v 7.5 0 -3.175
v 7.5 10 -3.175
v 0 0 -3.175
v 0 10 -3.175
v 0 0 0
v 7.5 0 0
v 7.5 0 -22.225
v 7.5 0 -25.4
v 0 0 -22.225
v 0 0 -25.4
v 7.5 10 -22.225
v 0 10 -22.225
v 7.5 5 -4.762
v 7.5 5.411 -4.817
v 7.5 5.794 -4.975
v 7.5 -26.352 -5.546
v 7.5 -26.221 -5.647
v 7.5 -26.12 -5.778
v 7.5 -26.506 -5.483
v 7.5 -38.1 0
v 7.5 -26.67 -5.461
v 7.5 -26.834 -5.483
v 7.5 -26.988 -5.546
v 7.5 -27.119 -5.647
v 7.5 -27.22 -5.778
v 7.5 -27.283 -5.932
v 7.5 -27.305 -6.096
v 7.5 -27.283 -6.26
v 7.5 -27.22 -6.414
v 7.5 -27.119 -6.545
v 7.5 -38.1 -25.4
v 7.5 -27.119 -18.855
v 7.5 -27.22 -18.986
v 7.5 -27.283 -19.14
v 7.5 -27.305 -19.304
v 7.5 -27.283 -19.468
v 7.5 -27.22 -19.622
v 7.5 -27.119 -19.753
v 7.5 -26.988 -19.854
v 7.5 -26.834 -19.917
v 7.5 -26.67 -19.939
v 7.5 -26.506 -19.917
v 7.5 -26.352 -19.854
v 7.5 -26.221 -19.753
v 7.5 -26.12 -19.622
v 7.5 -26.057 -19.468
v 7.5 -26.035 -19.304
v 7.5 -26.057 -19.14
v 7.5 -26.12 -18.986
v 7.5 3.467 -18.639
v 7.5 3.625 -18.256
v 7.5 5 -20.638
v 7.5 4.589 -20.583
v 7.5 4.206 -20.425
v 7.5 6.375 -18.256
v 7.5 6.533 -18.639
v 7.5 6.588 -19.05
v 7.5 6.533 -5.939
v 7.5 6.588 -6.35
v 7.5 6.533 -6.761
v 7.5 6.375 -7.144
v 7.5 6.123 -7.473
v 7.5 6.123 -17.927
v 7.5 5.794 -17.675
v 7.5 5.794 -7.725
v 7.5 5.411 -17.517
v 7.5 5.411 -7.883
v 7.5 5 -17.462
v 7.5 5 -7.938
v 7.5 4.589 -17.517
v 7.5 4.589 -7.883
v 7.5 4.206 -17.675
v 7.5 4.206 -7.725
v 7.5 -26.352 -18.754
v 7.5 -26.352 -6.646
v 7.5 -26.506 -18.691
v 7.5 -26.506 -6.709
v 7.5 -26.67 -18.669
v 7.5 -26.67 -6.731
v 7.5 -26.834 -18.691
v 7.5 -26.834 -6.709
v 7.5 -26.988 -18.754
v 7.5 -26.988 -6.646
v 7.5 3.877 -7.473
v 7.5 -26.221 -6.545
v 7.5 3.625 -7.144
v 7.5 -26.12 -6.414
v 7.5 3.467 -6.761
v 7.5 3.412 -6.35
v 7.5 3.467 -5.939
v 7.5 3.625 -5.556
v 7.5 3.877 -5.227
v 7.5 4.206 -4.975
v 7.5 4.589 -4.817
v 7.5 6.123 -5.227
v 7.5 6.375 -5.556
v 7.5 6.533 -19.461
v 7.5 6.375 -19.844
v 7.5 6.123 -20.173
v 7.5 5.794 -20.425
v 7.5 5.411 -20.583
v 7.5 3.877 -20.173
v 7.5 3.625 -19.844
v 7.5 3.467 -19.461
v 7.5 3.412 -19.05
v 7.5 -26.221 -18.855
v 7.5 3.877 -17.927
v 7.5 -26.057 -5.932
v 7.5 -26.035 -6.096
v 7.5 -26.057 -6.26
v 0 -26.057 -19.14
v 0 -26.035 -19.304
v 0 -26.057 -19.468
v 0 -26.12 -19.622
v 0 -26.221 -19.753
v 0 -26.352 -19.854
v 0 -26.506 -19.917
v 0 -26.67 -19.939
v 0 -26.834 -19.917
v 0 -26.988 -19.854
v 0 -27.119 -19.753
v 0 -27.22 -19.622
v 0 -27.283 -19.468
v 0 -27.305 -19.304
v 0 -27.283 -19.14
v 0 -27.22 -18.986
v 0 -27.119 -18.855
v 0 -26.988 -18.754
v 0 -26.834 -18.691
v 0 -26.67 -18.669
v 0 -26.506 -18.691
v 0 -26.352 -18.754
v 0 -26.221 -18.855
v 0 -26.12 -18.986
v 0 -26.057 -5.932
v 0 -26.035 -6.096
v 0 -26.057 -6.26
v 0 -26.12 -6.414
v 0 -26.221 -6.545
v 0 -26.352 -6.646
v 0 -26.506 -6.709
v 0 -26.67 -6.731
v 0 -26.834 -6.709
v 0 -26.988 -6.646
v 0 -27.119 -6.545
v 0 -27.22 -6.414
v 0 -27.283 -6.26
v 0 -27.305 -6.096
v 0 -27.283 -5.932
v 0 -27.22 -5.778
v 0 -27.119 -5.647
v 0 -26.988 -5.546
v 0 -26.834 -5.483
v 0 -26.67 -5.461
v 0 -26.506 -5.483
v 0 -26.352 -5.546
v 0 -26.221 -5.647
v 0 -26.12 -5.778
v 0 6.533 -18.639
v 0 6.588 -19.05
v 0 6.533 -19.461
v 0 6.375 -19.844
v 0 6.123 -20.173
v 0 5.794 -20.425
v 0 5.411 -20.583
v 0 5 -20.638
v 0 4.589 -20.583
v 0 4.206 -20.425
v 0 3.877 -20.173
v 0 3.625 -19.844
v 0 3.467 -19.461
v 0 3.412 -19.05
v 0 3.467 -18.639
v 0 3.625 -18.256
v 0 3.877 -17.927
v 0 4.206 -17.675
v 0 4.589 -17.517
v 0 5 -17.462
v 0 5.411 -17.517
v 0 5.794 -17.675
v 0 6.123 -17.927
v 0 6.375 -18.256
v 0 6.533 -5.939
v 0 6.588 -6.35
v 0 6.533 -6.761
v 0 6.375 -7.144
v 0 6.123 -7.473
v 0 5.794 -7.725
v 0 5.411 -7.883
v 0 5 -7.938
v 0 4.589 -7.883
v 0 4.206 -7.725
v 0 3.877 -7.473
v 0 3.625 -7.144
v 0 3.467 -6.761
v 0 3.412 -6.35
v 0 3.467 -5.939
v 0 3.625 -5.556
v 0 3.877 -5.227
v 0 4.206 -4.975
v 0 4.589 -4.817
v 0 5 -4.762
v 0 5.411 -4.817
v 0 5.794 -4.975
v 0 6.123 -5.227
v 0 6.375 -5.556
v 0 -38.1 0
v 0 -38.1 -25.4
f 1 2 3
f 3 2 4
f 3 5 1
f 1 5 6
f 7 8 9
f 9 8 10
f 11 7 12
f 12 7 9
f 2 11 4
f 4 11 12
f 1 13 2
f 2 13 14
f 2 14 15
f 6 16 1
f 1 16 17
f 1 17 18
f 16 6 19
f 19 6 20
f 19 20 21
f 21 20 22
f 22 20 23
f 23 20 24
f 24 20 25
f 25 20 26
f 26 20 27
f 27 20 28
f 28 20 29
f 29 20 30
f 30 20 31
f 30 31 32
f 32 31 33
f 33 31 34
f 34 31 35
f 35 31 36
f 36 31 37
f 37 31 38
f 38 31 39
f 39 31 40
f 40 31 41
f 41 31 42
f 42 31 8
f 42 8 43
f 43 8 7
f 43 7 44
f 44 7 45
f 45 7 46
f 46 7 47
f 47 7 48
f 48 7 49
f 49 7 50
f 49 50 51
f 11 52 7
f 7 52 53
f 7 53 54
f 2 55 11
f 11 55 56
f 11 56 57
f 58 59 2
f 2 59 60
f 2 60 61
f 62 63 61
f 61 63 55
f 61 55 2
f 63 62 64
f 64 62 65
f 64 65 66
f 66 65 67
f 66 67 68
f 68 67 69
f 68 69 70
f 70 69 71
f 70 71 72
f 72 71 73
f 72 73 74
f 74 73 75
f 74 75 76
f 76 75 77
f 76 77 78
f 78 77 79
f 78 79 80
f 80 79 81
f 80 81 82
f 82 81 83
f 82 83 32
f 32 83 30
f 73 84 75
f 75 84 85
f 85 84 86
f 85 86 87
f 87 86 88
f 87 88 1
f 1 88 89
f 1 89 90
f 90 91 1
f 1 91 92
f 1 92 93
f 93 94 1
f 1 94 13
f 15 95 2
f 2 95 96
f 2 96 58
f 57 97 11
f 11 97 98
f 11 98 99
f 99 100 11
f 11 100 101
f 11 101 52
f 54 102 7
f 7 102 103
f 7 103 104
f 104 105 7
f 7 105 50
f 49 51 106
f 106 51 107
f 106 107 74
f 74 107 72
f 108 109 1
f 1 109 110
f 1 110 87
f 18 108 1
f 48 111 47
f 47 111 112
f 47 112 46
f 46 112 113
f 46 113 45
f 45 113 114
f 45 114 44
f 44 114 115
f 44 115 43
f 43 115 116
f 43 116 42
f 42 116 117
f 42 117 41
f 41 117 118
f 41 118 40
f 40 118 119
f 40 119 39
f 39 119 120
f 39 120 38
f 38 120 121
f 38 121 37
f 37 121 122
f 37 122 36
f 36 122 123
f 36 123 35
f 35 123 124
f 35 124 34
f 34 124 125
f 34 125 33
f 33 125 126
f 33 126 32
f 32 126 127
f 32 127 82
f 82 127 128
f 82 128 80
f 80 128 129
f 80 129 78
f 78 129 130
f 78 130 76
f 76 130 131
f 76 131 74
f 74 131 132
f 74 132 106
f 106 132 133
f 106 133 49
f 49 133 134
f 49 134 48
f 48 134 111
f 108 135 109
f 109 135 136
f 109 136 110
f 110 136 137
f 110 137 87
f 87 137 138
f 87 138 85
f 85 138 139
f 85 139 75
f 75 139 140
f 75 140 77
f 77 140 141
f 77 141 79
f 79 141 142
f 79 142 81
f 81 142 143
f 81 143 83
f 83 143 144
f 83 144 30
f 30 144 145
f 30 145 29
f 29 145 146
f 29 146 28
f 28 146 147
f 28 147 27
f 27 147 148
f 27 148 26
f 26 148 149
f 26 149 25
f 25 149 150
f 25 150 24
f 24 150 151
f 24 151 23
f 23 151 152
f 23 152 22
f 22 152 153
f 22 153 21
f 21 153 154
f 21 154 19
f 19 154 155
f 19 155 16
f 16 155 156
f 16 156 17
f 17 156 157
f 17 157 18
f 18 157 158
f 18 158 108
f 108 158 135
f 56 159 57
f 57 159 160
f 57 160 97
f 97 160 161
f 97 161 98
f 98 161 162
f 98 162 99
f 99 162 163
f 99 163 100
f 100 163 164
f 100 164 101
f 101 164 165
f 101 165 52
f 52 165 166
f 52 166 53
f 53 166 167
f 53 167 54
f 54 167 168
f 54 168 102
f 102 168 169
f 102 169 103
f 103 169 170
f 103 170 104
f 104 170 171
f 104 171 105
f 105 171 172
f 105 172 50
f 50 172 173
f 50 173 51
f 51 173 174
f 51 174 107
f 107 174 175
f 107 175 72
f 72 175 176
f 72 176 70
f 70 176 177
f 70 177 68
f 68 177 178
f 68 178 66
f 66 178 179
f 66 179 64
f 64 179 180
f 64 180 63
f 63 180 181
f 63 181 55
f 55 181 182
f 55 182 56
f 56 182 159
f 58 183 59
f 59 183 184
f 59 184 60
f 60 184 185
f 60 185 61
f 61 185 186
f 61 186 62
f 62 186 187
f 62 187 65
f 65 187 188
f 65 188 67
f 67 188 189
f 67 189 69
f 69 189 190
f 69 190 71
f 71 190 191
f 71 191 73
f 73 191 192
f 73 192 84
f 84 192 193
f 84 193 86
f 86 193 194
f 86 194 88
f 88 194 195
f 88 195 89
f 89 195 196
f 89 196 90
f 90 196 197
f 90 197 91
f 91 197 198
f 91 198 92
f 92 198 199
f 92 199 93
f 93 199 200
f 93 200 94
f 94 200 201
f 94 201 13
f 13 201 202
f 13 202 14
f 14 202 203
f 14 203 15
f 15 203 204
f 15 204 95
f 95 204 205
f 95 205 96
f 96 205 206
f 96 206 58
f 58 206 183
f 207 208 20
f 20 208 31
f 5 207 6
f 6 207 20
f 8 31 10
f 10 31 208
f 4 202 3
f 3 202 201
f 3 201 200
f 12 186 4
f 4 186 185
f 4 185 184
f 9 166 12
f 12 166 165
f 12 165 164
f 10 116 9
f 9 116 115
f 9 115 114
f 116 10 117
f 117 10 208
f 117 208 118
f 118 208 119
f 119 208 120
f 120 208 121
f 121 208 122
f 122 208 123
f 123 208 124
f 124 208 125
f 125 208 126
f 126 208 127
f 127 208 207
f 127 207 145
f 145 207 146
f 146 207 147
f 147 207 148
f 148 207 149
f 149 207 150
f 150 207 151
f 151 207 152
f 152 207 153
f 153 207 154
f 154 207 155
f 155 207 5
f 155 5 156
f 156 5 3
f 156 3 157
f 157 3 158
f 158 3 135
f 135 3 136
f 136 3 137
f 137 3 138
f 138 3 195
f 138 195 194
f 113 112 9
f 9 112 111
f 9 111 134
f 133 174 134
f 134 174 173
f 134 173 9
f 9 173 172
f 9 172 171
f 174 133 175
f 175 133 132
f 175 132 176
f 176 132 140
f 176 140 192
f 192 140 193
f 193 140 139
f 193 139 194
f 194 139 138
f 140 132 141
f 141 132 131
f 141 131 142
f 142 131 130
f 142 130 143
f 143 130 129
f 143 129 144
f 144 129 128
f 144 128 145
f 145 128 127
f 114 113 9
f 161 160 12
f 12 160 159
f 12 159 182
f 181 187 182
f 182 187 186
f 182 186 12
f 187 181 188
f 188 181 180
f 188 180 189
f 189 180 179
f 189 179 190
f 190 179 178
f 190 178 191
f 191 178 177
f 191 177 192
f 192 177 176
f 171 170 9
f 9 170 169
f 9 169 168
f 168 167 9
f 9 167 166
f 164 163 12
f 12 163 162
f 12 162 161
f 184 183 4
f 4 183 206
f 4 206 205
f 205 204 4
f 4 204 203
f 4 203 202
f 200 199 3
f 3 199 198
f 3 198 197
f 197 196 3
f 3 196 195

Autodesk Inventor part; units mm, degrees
ref_plane "YZ Plane" through (0, 0, 0) normal (1, 0, 0) x (0, 1, 0)
ref_plane "XZ Plane" through (0, 0, 0) normal (0, 1, 0) x (-1, 0, 0)
ref_plane "XY Plane" through (0, 0, 0) normal (0, 0, 1) x (1, 0, 0)
sketch "Sketch1" plane through (0, 0, 0) normal (1, 0, 0) x (0, 1, 0)
  line L0 (0, 0) -> (10, 0)
  line L1 (10, 0) -> (10, -25.4)
  line L2 (10, -25.4) -> (0, -25.4)
  line L3 (0, -25.4) -> (0, 0)
  line L4 (5, 0) -> (5, -25.4) construction
  line L5 (10, 0) -> (0, 0)
  line L6 (0, 0) -> (0, -6.35)
  line L7 (0, -6.35) -> (10, -6.35) construction
  line L8 (10, -6.35) -> (10, 0)
  line L9 (10, -25.4) -> (0, -25.4)
  line L10 (0, -25.4) -> (0, -19.05)
  line L11 (0, -19.05) -> (10, -19.05) construction
  line L12 (10, -19.05) -> (10, -25.4)
  circle A0 centre (5, -6.35) radius 1.5875
  circle A1 centre (5, -19.05) radius 1.5875
  line L13 (0, -12.7) -> (-19.05, -12.7)
  line L14 (-9.652, -21.59) -> (-28.448, -21.59)
  line L15 (-28.448, -21.59) -> (-28.448, -3.81)
  line L16 (-28.448, -3.81) -> (-9.652, -3.81)
  line L17 (-9.652, -3.81) -> (-9.652, -21.59)
  line L18 (-9.652, -21.59) -> (-28.448, -3.81) construction
  line L19 (-28.448, -21.59) -> (-9.652, -3.81) construction
  line L20 (-28.448, -3.81) -> (-26.67, -3.81)
  line L21 (-26.67, -3.81) -> (-26.67, -6.096)
  circle A2 centre (-26.67, -6.096) radius 0.635
  circle A3 centre (-26.67, -19.304) radius 0.635
  line L22 (-38.1, 0) -> (0, 0)
  line L23 (0, 0) -> (0, -25.4)
  line L24 (0, -25.4) -> (-38.1, -25.4)
  line L25 (-38.1, -25.4) -> (-38.1, 0)
  line L26 (-38.1, 0) -> (0, -25.4) construction
  line L27 (0, 0) -> (-38.1, -25.4) construction
  dimension "d0" = 10
  dimension "d1" = 25.4
  dimension "d2" = 6.35
  dimension "d3" = 6.35
  dimension "d4" = 3.175
  dimension "d5" = 3.175
  dimension "d6" = 19.05
  dimension "d7" = 18.796
  dimension "d8" = 17.78
  dimension "d9" = 1.778
  dimension "d10" = 2.286
  dimension "d11" = 1.27
extrude "Extrusion1" add sketch "Sketch1" along normal blind 7.5 contours L0 L1 L2 L3 | L17 L14 L15 L16 | L3 L24 L25 L22
sketch "Sketch2" plane through (7.5, 0, 0) normal (1, 0, 0) x (0, 0, -1)
  circle A0 centre (19.304, -26.67) radius 0.635 projected
  circle A1 centre (6.096, -26.67) radius 0.635 projected
  circle A2 centre (19.05, 5) radius 1.5875 projected
  circle A3 centre (6.35, 5) radius 1.5875 projected
  line L0 (25.4, -38.1) -> (25.4, 10) projected
  line L1 (25.4, 10) -> (0, 10) projected
  line L2 (0, 10) -> (0, -38.1) projected
  line L3 (0, -38.1) -> (25.4, -38.1) projected
  line L4 (25.4, 10) -> (0, 10) projected
  line L5 (3.175, 0) -> (22.225, 0)
  line L6 (22.225, 0) -> (22.225, 10)
  line L7 (22.225, 10) -> (3.175, 10)
  line L8 (3.175, 10) -> (3.175, 0)
  line L9 (3.175, 0) -> (22.225, 10) construction
  line L10 (22.225, 0) -> (3.175, 10) construction
  line L11 (25.4, -38.1) -> (25.4, 10) projected
  line L12 (0, 0) -> (25.4, 0)
  line L13 (25.4, 0) -> (25.4, 10)
  line L14 (25.4, 10) -> (0, 10)
  line L15 (0, 10) -> (0, 0)
  line L16 (0, 0) -> (25.4, 10) construction
  line L17 (25.4, 0) -> (0, 10) construction
  point P0 (12.7, 5)
  dimension "d14" = 19.05
extrude "Extrusion2" cut sketch "Sketch2" against normal blind 7.5 contours L12 L6 L1 L0 | L2 L1 L8 L12
properties part number "magMount" material "Polyethylene, High Density"
